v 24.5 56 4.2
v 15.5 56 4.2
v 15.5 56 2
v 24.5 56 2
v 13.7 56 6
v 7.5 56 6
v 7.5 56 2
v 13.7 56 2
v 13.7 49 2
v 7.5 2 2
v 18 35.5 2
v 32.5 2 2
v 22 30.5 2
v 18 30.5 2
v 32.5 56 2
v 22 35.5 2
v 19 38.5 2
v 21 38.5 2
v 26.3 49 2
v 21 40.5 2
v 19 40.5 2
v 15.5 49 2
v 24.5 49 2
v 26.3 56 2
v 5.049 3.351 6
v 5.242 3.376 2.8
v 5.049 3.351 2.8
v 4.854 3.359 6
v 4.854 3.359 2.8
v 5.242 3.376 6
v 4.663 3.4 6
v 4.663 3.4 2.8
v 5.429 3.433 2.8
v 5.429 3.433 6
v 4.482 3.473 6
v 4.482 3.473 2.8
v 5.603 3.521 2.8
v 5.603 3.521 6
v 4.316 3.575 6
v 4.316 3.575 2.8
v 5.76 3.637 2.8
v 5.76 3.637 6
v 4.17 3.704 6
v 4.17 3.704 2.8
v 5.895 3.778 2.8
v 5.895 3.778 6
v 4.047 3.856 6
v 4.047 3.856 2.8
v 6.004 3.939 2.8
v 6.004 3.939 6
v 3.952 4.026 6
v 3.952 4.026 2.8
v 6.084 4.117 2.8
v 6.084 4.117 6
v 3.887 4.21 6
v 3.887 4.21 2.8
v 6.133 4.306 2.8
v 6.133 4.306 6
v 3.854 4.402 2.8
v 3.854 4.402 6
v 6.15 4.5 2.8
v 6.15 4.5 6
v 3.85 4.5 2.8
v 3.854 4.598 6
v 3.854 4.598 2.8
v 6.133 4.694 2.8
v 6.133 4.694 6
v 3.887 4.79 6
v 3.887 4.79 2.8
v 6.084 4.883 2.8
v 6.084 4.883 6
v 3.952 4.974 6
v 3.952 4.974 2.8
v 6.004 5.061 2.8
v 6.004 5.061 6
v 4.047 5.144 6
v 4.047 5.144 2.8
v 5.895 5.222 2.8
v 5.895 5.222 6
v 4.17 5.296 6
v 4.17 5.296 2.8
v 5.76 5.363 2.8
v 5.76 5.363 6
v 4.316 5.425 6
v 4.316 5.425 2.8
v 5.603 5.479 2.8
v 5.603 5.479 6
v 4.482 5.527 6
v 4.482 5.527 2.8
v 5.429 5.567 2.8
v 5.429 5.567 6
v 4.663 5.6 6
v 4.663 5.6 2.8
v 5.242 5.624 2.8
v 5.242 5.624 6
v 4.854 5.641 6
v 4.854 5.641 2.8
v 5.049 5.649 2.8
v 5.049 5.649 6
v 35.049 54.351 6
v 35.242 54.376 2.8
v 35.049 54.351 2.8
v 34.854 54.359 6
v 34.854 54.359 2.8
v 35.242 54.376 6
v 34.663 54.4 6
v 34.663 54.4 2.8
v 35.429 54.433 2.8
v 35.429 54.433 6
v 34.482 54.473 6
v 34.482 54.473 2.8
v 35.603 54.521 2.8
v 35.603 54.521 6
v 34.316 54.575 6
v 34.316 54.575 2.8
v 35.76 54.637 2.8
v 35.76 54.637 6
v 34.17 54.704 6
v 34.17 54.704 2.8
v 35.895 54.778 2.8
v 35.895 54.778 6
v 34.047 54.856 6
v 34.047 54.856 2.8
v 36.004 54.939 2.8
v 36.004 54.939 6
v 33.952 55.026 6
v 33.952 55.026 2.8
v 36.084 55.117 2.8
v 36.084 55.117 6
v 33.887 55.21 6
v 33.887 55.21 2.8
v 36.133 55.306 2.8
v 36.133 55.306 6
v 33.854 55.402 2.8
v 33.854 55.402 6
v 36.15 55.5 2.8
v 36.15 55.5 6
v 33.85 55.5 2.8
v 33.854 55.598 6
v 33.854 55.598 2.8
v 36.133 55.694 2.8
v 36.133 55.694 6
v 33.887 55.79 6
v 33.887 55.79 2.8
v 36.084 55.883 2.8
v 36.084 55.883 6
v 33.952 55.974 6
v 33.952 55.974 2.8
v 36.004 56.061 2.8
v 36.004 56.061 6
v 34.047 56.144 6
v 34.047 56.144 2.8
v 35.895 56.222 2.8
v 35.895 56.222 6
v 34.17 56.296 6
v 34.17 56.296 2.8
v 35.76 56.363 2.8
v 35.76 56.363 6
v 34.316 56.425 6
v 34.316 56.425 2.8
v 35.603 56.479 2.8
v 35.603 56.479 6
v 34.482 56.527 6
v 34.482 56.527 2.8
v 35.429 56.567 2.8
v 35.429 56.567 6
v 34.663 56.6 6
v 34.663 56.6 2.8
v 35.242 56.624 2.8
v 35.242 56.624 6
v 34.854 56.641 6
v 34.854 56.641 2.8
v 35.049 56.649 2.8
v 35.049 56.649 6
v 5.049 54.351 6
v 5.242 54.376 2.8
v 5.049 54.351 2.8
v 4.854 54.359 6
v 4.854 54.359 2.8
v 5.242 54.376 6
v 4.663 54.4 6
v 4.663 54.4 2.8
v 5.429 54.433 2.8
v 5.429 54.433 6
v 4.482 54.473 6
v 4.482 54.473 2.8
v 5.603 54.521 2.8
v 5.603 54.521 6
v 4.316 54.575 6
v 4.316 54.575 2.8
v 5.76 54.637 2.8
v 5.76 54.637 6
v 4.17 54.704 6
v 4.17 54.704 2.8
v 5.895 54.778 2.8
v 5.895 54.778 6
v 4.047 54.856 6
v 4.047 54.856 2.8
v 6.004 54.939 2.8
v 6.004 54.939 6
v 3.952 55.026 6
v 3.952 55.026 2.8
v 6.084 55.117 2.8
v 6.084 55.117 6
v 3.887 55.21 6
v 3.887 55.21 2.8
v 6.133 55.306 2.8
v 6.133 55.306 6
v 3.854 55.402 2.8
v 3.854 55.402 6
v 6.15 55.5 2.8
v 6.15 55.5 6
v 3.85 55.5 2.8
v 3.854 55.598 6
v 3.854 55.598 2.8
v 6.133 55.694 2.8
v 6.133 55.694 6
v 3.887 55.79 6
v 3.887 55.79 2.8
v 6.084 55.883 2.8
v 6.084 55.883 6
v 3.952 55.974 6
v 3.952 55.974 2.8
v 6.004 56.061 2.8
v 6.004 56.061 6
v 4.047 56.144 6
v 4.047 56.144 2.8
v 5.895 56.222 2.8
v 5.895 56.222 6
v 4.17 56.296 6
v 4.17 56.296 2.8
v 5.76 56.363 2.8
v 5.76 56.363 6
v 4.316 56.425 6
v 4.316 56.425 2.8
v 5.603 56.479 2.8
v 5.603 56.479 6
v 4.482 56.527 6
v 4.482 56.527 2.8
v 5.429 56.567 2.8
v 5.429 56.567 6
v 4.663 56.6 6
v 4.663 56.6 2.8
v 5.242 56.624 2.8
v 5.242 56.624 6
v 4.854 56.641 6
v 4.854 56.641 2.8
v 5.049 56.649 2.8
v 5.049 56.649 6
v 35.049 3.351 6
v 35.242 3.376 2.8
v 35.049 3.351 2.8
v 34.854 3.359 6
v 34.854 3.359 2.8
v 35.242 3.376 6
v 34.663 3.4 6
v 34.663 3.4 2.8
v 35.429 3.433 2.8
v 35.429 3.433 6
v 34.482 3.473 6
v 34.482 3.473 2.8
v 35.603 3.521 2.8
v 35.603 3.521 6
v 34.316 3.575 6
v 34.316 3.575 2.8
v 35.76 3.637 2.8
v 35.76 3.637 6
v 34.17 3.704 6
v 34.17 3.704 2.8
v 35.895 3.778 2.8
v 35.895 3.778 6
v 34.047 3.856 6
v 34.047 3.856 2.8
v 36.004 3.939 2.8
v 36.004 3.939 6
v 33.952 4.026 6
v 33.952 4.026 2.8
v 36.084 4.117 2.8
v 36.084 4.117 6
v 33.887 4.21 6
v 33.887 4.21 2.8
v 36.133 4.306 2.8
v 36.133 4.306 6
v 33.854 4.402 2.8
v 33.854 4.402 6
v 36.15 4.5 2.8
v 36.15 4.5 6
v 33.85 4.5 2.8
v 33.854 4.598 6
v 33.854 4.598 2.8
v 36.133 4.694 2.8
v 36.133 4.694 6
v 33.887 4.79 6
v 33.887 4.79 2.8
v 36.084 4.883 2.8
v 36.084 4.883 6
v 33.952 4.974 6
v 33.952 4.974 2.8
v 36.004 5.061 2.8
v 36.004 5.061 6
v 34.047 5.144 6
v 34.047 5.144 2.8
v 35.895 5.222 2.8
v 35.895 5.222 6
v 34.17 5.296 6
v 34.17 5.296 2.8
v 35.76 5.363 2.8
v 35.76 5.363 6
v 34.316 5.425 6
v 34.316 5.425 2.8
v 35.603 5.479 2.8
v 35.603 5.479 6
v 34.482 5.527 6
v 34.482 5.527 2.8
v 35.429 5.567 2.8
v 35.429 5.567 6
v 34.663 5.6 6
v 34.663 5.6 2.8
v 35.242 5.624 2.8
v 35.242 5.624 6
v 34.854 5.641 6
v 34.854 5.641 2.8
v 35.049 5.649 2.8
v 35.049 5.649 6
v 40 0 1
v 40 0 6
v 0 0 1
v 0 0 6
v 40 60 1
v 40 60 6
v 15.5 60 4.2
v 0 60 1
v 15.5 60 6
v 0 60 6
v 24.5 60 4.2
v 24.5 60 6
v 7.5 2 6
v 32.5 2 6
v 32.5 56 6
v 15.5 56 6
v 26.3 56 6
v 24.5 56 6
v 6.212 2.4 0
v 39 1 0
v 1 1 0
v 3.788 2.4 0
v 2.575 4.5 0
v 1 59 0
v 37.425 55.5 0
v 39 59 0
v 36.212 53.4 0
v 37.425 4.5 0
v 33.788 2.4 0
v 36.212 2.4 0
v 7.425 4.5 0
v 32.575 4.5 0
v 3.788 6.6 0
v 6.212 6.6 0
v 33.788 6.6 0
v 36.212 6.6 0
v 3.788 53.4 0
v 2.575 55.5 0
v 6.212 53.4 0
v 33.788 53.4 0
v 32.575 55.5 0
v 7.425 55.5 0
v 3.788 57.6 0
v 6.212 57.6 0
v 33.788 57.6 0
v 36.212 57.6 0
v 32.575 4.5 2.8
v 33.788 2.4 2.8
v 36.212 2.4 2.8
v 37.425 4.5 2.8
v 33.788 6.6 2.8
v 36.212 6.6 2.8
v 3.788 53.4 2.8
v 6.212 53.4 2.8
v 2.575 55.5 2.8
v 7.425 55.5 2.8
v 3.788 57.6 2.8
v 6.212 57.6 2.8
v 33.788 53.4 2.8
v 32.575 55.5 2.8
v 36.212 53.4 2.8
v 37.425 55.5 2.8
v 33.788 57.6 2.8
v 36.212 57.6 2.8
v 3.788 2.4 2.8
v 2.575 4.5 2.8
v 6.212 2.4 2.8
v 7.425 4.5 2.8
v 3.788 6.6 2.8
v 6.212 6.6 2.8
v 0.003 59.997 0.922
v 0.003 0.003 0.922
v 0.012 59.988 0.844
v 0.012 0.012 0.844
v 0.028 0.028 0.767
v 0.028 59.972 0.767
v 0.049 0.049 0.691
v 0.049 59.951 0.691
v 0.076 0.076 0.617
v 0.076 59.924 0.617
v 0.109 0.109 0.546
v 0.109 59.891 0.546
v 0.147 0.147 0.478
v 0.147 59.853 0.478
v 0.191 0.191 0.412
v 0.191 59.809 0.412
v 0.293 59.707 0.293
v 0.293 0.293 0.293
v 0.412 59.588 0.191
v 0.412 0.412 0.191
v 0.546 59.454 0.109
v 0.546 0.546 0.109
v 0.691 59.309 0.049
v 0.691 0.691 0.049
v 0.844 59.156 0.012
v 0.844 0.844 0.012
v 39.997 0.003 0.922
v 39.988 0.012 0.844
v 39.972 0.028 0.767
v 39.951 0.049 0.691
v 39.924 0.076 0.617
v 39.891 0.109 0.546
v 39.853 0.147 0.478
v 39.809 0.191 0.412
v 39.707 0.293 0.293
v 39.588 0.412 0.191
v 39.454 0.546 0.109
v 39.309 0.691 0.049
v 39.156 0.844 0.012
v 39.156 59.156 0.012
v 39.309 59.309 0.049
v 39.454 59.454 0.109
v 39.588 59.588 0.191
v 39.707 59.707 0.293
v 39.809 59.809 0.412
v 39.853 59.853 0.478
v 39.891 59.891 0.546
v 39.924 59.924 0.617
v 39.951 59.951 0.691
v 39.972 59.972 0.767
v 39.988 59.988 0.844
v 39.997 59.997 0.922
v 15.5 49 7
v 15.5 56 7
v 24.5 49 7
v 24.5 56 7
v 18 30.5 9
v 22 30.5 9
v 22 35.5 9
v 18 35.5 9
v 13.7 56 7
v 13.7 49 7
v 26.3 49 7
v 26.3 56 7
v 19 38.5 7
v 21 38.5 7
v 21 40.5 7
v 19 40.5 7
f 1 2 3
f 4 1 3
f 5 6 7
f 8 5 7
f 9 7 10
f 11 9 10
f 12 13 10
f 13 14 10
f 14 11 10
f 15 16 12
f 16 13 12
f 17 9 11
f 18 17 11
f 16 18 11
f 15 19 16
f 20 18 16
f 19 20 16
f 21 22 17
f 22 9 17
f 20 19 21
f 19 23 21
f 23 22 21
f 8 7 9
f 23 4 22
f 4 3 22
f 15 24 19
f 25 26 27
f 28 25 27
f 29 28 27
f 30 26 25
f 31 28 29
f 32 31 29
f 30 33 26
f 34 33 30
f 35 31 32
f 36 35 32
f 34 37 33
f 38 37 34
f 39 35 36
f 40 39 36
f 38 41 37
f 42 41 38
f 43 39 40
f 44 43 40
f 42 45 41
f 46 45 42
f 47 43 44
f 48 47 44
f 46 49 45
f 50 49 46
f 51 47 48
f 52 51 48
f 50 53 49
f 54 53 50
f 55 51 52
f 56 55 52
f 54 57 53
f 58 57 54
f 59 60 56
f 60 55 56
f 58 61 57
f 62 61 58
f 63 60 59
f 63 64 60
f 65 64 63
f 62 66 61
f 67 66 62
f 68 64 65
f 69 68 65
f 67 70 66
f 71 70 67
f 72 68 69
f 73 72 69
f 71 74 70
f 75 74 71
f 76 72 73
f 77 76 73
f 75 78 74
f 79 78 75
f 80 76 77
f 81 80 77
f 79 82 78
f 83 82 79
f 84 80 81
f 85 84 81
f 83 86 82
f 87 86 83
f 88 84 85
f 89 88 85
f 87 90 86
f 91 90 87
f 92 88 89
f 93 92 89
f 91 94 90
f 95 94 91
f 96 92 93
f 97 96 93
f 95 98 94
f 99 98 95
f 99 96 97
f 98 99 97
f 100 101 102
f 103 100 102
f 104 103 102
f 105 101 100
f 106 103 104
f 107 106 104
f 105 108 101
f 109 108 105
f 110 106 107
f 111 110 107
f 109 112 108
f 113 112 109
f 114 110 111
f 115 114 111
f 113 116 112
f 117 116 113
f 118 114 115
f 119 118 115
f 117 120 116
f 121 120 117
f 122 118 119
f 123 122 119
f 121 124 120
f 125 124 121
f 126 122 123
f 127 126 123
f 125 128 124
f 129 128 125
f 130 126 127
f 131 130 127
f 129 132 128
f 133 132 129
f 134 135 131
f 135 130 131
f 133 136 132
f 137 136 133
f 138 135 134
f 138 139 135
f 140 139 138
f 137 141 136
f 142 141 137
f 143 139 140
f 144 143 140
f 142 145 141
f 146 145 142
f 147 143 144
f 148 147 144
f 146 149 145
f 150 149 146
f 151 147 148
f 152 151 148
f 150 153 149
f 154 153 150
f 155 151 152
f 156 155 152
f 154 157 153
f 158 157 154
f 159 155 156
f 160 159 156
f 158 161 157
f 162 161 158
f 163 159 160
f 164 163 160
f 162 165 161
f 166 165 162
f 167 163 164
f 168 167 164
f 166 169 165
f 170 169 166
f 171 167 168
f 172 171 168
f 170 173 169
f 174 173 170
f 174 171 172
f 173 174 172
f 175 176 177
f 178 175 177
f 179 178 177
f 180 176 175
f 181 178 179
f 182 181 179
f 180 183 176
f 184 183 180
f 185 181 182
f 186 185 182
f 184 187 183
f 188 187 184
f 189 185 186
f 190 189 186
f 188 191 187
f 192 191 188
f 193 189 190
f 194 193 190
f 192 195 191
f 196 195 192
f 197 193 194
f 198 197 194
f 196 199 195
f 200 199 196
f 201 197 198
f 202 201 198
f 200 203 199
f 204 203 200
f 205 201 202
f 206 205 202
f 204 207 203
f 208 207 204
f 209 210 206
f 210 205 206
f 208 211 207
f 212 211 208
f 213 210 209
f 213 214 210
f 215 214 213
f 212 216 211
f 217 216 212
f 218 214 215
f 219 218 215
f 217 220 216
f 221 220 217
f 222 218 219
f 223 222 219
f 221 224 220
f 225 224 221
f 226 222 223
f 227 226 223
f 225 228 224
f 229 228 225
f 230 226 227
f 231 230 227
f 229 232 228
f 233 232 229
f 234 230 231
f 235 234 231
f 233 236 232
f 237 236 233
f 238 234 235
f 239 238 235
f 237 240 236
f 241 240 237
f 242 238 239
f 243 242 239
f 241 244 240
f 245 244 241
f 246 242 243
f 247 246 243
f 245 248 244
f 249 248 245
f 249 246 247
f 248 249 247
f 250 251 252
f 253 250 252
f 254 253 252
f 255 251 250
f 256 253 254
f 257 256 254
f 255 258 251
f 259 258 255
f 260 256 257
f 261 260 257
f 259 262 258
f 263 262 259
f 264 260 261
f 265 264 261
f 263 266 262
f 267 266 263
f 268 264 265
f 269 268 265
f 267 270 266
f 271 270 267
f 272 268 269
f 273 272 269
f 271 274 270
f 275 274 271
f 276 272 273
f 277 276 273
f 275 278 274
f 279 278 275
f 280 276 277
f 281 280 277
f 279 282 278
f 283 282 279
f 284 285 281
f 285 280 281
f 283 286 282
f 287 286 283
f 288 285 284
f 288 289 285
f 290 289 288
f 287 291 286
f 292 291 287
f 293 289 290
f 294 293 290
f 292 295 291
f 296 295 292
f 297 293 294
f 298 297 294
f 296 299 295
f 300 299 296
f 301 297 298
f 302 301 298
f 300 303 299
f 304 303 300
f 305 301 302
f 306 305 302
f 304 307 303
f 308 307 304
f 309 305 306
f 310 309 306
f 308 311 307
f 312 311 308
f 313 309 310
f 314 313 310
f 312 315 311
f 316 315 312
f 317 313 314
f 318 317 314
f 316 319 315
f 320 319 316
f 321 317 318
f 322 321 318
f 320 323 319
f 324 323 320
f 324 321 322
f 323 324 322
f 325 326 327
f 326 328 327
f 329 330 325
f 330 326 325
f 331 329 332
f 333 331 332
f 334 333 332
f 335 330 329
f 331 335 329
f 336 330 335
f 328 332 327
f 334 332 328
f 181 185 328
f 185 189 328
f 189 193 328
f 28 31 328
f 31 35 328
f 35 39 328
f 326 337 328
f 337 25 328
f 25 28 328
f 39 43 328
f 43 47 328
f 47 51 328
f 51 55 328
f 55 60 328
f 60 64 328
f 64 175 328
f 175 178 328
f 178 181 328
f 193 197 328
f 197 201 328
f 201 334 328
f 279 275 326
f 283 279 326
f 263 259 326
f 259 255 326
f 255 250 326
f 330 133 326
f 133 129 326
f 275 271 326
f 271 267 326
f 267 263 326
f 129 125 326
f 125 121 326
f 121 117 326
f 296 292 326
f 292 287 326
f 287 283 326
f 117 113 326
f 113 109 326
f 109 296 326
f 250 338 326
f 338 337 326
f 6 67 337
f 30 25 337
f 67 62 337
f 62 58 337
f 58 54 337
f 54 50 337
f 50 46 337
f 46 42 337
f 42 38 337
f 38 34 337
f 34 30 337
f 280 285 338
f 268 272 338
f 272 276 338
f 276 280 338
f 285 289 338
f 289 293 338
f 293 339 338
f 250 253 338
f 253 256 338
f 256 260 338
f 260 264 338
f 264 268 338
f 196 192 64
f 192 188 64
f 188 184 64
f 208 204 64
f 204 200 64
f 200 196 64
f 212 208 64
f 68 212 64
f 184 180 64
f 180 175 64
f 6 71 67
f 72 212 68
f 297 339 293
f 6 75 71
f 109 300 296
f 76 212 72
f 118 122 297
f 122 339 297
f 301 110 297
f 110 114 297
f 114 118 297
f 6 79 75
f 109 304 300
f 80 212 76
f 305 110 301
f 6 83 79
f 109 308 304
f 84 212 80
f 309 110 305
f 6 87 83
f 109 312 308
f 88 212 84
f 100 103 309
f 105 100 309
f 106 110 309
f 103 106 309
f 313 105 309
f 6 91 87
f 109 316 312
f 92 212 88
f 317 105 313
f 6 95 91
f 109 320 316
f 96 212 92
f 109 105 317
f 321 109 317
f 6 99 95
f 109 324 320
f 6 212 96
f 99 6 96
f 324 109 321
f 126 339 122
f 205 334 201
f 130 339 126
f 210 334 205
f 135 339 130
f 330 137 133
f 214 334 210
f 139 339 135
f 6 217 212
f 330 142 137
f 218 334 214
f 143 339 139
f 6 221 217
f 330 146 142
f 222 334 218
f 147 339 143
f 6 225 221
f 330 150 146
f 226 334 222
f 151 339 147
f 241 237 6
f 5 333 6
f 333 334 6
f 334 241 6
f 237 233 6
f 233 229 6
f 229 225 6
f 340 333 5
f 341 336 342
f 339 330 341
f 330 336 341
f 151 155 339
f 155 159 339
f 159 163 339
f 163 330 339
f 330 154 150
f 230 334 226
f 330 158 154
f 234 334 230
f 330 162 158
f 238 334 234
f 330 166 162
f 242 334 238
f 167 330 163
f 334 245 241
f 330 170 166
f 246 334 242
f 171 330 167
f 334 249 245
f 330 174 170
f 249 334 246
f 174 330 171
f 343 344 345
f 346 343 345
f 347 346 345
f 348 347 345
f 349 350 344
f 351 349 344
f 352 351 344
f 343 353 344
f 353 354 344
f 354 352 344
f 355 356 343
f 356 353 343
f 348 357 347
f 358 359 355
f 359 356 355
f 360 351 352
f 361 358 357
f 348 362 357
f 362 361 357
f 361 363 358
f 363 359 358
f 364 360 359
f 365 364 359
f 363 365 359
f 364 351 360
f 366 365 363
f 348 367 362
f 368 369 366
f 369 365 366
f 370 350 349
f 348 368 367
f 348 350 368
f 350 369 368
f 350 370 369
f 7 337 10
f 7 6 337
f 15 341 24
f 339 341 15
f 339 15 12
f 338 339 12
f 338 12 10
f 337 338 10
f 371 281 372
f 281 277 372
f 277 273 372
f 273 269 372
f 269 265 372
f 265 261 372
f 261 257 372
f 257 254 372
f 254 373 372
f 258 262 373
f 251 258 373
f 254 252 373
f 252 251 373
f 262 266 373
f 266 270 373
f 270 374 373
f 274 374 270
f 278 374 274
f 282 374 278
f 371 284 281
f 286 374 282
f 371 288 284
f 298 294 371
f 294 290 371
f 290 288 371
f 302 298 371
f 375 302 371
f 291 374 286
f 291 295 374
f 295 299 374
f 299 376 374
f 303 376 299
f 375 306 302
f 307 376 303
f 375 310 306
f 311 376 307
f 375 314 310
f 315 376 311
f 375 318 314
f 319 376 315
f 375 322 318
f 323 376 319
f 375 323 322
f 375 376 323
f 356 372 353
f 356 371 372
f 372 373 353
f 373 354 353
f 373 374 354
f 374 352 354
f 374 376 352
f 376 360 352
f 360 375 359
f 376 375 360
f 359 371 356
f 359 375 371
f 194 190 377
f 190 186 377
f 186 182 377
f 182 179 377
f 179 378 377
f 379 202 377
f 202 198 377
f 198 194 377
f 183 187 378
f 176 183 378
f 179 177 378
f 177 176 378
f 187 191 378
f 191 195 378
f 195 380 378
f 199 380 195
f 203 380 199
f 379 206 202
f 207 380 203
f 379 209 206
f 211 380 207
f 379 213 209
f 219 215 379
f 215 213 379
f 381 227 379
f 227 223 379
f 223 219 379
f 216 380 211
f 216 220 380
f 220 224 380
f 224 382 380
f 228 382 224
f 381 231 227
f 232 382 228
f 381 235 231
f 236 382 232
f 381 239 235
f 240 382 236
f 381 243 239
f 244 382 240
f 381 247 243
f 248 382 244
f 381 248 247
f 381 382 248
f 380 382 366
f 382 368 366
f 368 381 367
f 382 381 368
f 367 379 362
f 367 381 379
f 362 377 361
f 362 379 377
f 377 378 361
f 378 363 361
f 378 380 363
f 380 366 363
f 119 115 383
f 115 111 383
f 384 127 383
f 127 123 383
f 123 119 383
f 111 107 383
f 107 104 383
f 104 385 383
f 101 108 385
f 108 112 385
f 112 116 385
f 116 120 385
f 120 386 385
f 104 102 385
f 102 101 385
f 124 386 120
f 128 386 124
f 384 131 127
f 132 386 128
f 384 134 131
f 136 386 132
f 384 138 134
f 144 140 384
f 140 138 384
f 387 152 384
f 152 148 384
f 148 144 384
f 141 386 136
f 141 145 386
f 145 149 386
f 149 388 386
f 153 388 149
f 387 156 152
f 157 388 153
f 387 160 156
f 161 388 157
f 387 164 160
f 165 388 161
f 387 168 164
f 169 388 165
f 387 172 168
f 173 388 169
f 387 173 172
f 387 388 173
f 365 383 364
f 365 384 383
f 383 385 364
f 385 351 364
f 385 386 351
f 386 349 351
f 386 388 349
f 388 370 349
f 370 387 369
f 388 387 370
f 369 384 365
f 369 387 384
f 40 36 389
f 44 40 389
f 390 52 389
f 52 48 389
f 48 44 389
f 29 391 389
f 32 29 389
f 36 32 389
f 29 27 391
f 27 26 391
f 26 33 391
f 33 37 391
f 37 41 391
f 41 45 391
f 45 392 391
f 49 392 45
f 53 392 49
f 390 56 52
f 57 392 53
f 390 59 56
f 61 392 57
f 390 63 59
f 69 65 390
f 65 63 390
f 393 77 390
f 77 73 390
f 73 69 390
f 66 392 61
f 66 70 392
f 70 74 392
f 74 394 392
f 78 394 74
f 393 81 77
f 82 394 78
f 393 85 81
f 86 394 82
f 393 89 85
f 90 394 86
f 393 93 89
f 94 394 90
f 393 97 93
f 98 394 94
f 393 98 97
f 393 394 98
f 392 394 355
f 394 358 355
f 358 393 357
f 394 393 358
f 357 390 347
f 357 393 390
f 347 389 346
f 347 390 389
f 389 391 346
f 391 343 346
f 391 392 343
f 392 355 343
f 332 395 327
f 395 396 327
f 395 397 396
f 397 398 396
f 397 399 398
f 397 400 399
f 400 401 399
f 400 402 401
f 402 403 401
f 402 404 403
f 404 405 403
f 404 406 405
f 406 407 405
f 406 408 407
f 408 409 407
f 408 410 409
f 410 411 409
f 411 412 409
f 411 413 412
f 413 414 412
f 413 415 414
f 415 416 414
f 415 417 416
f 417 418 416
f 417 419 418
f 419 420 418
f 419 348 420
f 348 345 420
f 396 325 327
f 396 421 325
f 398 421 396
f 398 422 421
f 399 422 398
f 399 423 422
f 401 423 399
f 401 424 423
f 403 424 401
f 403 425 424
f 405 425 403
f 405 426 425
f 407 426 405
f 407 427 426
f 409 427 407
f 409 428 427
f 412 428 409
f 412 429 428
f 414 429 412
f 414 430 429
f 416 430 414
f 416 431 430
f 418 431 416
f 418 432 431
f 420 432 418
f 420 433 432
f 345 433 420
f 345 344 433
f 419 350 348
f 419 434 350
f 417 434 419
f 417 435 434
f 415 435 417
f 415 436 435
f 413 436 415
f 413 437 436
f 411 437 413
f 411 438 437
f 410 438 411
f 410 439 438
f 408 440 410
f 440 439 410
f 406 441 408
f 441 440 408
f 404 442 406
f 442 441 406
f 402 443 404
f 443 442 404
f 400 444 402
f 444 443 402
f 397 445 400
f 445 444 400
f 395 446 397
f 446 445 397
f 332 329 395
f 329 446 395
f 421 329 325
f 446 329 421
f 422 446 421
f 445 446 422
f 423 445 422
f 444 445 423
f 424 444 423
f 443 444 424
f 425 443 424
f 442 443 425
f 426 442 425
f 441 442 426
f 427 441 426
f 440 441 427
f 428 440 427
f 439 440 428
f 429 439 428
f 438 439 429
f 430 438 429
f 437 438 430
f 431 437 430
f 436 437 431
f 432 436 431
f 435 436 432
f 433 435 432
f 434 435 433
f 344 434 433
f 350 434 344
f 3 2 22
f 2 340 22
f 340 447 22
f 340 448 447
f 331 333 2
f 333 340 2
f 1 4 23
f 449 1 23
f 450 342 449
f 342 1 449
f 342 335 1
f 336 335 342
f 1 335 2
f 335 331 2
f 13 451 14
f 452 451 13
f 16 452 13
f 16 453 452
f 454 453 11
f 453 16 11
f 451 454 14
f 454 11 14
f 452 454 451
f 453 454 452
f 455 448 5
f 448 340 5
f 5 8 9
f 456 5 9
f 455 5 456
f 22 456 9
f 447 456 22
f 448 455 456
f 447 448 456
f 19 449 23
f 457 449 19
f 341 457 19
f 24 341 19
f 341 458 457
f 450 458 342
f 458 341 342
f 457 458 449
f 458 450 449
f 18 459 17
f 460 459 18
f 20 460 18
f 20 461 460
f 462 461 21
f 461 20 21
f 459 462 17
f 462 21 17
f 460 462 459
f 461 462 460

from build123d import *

# Parameters (mm, degrees)
SKETCH1_W           = 60
SKETCH1_H           = 40
BOSS_EXTRUDE1_DEPTH = 6
SKETCH3_R           = 1.15
CUT_EXTRUDE2_DEPTH  = 73.360210061
SKETCH12_W          = 25
SKETCH12_H          = 54
CUT_EXTRUDE10_DEPTH = 4
CUT_EXTRUDE11_DEPTH = 2.8
FILLET1_R           = 1
SKETCH15_W          = 9
SKETCH15_H          = 4
CUT_EXTRUDE13_DEPTH = 1.8
SKETCH16_W          = 4
SKETCH16_H          = 5
BOSS_EXTRUDE2_DEPTH = 7
SKETCH17_W          = 2
SKETCH17_H          = 2
SKETCH17_W_2        = 1.8
SKETCH17_H_2        = 7
BOSS_EXTRUDE3_DEPTH = 5


with BuildPart() as part:
    # Sketch1 → Boss-Extrude1 (new body)
    with BuildSketch(Plane(origin=(0, 0, 0), x_dir=(0, 1, 0), z_dir=(0, 0, 1))):
        with Locations((30, -20)):
            Rectangle(SKETCH1_W, SKETCH1_H)
    extrude(amount=BOSS_EXTRUDE1_DEPTH)

    # Sketch3 → Cut-Extrude2 (cut, through all)
    with BuildSketch(Plane.XY.offset(6)):
        with Locations((5, 4.5)):
            Circle(SKETCH3_R)
        with Locations((35, 4.5)):
            Circle(SKETCH3_R)
        with Locations((5, 55.5)):
            Circle(SKETCH3_R)
        with Locations((35, 55.5)):
            Circle(SKETCH3_R)
    extrude(amount=-CUT_EXTRUDE2_DEPTH, mode=Mode.SUBTRACT)

    # Sketch12 → Cut-Extrude10 (cut)
    with BuildSketch(Plane.XY.offset(6)):
        with Locations((20, 29)):
            Rectangle(SKETCH12_W, SKETCH12_H)
    extrude(amount=-CUT_EXTRUDE10_DEPTH, mode=Mode.SUBTRACT)

    # Sketch13 → Cut-Extrude11 (cut)
    with BuildSketch(Plane(origin=(0, 0, 0), x_dir=(1, 0, 0), z_dir=(0, 0, -1))):
        Polygon((7.424871131, -55.5), (6.212435565, -53.4), (3.787564435, -53.4), (2.575128869, -55.5), (3.787564435, -57.6), (6.212435565, -57.6), align=None)
        Polygon((32.575128869, -55.5), (33.787564435, -57.6), (36.212435565, -57.6), (37.424871131, -55.5), (36.212435565, -53.4), (33.787564435, -53.4), align=None)
        Polygon((7.424871131, -4.5), (6.212435565, -2.4), (3.787564435, -2.4), (2.575128869, -4.5), (3.787564435, -6.6), (6.212435565, -6.6), align=None)
        Polygon((32.575128869, -4.5), (33.787564435, -6.6), (36.212435565, -6.6), (37.424871131, -4.5), (36.212435565, -2.4), (33.787564435, -2.4), align=None)
    extrude(amount=-CUT_EXTRUDE11_DEPTH, mode=Mode.SUBTRACT)

    # Fillet1
    fillet1_edges = [part.edges().sort_by_distance(p)[0] for p in [
        (0, 30, 0),
        (20, 60, 0),
        (40, 30, 0),
        (20, 0, 0),
    ]]
    fillet(fillet1_edges, radius=FILLET1_R)

    # Sketch15 → Cut-Extrude13 (cut)
    with BuildSketch(Plane.XY.offset(6)):
        with Locations((20, 58)):
            Rectangle(SKETCH15_W, SKETCH15_H)
    extrude(amount=-CUT_EXTRUDE13_DEPTH, mode=Mode.SUBTRACT)

    # Sketch16 → Boss-Extrude2 (add)
    with BuildSketch(Plane.XY.offset(2)):
        with Locations((20, 33)):
            Rectangle(SKETCH16_W, SKETCH16_H)
    extrude(amount=BOSS_EXTRUDE2_DEPTH)

    # Sketch17 → Boss-Extrude3 (add)
    with BuildSketch(Plane.XY.offset(2)):
        with Locations((20, 39.5)):
            Rectangle(SKETCH17_W, SKETCH17_H)
        with Locations((14.6, 52.5)):
            Rectangle(SKETCH17_W_2, SKETCH17_H_2)
        with Locations((25.4, 52.5)):
            Rectangle(SKETCH17_W_2, SKETCH17_H_2)
    extrude(amount=BOSS_EXTRUDE3_DEPTH)


solid = part.part
